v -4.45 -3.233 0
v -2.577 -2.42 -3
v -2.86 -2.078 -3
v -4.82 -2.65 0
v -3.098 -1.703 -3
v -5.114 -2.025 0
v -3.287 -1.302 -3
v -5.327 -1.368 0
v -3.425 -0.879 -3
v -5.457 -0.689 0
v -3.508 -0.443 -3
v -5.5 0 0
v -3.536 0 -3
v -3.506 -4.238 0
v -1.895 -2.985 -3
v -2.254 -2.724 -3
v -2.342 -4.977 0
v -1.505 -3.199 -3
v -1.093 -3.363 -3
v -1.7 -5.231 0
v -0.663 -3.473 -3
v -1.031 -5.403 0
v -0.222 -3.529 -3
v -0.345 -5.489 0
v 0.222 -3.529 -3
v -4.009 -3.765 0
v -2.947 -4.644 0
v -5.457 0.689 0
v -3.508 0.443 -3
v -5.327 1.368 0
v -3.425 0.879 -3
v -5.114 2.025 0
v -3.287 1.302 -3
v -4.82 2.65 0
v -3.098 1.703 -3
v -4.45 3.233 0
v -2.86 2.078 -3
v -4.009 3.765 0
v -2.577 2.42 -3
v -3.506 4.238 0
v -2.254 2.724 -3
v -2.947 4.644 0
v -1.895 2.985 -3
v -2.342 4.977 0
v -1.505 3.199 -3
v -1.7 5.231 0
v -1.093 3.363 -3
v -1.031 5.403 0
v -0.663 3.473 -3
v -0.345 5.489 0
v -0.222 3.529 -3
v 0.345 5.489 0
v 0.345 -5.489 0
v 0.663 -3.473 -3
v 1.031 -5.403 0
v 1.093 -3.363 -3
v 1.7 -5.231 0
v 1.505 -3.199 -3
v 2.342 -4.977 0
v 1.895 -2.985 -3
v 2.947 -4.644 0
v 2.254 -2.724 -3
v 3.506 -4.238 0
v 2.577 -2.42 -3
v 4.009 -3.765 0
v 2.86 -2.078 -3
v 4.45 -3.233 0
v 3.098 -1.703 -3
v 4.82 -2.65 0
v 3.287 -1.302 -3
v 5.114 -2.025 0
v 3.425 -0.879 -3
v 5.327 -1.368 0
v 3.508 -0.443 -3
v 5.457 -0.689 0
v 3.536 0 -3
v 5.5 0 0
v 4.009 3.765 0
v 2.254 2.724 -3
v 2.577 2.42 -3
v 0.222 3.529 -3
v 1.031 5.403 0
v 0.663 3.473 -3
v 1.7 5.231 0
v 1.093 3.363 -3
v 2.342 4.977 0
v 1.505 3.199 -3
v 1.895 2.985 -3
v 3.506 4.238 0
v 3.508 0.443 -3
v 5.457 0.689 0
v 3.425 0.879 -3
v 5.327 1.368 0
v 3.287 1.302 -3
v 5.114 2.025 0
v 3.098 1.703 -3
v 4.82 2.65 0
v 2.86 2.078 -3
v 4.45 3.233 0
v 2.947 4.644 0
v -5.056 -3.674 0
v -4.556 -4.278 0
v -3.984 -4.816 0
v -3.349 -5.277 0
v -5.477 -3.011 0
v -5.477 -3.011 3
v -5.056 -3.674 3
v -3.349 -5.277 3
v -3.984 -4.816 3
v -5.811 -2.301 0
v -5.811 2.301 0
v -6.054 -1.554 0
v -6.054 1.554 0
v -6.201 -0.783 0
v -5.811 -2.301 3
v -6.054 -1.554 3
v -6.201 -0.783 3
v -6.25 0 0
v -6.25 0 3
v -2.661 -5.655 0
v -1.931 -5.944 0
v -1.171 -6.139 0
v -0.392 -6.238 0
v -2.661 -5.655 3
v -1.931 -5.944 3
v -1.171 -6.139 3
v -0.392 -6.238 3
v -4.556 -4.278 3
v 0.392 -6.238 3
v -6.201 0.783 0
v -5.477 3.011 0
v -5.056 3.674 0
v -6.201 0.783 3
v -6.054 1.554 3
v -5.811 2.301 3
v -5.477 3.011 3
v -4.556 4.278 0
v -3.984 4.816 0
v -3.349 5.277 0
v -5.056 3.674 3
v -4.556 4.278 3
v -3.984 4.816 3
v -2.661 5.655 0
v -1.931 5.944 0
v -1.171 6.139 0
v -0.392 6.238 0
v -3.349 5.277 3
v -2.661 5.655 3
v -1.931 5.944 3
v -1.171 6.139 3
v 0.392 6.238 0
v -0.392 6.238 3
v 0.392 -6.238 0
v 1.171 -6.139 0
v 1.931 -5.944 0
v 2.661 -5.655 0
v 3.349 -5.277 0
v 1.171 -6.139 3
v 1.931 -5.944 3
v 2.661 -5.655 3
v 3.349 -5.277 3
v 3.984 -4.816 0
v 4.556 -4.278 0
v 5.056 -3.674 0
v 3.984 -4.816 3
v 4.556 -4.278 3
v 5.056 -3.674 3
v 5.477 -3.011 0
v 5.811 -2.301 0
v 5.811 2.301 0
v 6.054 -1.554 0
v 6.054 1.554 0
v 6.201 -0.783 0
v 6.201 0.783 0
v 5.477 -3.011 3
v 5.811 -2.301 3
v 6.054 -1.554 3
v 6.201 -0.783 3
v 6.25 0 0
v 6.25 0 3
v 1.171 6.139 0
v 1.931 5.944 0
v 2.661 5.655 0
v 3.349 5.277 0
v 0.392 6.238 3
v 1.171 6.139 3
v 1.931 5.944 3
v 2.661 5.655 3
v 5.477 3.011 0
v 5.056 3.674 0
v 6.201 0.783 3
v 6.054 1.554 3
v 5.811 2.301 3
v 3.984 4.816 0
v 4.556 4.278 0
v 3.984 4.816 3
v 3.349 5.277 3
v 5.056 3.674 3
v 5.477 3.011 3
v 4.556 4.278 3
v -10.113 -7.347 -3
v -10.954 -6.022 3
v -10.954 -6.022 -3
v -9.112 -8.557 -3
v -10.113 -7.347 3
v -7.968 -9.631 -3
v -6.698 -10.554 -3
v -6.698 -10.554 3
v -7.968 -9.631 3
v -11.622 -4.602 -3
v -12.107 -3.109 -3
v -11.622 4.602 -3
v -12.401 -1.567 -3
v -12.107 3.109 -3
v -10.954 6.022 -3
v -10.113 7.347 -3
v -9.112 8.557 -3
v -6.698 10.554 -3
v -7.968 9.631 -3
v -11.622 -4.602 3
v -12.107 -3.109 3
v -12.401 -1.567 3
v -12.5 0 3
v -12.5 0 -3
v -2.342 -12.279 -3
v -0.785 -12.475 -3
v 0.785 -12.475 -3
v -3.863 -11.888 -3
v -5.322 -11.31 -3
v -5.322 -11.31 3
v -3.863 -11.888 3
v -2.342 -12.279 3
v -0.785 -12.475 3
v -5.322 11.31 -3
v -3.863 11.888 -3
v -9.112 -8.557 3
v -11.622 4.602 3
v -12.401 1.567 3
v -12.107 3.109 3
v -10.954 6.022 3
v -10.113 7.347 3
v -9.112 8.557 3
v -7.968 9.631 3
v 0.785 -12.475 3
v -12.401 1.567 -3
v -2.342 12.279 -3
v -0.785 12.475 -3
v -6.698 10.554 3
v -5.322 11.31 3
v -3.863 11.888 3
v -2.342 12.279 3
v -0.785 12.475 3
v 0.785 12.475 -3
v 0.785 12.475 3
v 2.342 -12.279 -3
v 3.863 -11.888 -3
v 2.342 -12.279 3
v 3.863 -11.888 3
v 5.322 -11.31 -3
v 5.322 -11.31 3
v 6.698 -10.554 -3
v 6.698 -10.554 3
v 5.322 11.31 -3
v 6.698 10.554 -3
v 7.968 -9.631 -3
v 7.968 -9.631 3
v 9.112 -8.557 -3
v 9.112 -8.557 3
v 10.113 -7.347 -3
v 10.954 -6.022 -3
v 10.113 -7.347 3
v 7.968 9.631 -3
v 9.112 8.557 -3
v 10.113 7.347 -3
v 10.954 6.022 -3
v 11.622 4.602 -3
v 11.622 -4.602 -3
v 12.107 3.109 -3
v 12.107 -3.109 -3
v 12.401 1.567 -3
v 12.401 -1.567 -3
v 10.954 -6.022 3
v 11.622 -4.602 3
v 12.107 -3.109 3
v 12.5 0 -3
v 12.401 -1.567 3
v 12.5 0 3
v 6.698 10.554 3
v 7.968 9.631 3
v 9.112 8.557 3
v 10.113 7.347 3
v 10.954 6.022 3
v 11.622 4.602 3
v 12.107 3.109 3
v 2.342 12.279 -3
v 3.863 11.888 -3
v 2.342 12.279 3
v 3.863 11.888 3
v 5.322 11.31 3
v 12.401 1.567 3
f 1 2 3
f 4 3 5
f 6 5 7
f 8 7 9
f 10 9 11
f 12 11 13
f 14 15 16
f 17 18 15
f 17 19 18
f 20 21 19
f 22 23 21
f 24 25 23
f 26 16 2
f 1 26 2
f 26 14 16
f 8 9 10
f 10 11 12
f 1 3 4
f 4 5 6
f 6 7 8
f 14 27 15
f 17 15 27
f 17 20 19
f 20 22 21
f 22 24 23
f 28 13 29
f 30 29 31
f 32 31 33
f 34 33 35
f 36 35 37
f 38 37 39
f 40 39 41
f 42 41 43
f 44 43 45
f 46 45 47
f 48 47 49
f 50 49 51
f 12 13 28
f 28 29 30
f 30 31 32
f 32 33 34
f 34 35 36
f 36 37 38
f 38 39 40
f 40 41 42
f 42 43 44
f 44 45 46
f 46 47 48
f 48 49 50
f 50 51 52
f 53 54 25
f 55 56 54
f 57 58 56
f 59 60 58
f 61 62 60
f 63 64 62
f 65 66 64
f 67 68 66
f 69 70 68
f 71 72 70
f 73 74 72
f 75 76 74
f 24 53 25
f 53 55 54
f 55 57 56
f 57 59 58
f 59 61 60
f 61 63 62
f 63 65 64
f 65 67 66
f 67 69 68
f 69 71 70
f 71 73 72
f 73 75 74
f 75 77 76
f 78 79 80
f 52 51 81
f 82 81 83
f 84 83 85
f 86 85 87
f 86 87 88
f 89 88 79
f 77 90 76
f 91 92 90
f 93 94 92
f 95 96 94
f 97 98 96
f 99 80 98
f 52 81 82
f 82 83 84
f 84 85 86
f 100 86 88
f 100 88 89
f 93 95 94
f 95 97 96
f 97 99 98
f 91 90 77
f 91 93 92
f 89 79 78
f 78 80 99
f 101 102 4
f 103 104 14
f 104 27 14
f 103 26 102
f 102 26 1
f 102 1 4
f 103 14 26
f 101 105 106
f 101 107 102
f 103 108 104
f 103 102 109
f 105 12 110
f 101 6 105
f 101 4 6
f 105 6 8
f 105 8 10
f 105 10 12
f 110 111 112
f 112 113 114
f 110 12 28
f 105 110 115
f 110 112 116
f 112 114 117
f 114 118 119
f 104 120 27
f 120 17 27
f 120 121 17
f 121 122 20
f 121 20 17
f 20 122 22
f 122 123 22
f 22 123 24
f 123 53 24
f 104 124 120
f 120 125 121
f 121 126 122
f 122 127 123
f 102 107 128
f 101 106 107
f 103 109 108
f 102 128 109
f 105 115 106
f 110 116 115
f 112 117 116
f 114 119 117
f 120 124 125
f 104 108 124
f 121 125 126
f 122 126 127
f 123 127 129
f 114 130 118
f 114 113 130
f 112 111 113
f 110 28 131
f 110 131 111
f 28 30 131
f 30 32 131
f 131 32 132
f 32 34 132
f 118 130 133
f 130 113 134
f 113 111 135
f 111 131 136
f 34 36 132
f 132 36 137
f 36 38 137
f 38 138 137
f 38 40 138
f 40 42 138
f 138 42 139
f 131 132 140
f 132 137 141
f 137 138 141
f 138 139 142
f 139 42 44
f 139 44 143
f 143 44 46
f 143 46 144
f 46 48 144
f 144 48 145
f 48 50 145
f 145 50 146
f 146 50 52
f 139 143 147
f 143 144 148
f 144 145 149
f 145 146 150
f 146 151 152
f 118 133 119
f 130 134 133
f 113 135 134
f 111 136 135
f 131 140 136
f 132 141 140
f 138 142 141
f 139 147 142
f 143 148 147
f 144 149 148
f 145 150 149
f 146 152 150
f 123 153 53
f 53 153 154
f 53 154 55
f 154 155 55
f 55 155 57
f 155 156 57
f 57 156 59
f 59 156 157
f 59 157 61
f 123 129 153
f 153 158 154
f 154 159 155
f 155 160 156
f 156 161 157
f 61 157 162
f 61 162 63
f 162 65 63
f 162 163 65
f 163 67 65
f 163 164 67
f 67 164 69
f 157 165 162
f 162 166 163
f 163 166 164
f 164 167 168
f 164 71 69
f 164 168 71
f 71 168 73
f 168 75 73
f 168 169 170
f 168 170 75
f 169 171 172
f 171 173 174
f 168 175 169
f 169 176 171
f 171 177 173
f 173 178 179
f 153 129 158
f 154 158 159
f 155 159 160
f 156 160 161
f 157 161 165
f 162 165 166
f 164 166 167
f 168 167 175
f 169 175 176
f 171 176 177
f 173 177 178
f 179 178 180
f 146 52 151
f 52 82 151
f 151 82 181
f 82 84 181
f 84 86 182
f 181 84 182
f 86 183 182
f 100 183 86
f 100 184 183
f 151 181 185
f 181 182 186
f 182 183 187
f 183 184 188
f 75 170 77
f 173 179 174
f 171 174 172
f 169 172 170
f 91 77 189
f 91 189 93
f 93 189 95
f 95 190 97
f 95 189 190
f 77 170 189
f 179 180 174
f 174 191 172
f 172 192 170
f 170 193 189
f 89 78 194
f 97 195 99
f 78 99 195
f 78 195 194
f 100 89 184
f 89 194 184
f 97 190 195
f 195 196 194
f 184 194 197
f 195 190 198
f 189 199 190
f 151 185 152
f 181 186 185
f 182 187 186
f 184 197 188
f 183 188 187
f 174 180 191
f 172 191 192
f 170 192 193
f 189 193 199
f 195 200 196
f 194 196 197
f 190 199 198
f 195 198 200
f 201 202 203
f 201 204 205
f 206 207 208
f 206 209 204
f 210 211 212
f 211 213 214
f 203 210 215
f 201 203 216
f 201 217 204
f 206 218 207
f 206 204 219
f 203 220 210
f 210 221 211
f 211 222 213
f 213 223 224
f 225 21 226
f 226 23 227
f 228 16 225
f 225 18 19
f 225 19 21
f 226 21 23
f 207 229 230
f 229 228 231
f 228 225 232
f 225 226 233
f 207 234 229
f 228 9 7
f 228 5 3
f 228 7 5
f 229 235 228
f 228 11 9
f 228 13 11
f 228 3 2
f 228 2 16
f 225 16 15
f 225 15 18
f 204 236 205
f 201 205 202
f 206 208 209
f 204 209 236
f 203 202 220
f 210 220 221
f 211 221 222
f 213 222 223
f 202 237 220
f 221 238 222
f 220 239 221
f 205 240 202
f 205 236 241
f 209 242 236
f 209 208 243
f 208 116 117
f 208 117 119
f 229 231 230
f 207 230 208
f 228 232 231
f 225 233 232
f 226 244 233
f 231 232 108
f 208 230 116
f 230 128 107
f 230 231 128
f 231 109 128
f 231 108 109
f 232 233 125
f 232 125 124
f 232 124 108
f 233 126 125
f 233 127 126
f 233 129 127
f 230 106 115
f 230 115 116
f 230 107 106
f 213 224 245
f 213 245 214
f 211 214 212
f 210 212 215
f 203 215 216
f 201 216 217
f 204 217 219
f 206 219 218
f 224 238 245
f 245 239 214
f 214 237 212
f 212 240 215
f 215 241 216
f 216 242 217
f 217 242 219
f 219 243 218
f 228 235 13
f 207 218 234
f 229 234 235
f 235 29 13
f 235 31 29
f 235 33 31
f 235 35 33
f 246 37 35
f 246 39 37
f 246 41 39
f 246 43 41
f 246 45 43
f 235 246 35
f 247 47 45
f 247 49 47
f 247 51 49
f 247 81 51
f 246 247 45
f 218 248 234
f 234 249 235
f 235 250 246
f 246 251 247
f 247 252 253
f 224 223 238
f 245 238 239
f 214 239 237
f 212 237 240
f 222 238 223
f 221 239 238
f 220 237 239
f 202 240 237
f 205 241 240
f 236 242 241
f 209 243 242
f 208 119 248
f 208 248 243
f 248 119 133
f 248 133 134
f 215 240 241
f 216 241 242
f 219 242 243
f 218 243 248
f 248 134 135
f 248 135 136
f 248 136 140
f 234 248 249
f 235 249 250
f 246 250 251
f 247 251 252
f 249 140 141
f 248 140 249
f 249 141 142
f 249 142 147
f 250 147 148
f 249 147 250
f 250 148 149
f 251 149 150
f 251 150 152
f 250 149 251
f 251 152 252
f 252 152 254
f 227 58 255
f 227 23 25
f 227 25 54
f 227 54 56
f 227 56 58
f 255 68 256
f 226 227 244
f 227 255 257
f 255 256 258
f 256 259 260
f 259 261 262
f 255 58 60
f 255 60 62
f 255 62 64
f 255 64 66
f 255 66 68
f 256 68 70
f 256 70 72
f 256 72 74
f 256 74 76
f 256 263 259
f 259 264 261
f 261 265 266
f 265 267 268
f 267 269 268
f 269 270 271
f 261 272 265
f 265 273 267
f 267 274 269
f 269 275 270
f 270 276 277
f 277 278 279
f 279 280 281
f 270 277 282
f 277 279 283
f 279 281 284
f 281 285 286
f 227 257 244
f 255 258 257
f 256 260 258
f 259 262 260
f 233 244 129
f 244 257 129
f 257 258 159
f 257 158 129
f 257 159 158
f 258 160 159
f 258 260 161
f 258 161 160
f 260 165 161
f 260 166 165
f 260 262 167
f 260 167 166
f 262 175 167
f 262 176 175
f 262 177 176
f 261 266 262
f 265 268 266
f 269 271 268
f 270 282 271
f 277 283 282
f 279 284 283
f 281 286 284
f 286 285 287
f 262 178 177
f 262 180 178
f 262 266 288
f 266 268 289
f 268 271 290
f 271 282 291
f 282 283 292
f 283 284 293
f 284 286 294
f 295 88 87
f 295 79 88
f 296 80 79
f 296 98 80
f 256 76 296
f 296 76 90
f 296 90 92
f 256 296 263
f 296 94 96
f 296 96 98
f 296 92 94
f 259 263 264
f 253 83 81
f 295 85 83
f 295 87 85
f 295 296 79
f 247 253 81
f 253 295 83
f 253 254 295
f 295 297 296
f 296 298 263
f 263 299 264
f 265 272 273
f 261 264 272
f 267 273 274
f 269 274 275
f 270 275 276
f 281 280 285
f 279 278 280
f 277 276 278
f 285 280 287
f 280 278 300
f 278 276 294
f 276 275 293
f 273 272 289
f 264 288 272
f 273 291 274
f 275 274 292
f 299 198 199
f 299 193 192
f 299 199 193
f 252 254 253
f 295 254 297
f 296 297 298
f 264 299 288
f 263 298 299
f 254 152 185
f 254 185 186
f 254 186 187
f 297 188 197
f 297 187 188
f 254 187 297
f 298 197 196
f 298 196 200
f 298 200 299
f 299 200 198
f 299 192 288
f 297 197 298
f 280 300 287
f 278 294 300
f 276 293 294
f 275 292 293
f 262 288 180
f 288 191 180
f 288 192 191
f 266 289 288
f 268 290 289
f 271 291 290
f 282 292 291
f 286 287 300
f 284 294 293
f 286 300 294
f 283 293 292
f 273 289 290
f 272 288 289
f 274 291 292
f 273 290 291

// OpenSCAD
$fn = 50;

difference() {
	union() {
		translate(v = [0, 0, -3.0]) {
			cylinder(h = 6, r = 12.5);
		}
	}
	union() {
		translate(v = [0, 0, 0]) {
			rotate(a = [0, 0, 0]) {
				difference() {
					union() {
						translate(v = [0, 0, -6.0]) {
							cylinder(h = 6, r = 2.25);
						}
						translate(v = [0, 0, -4.2]) {
							cylinder(h = 4.2, r1 = 2.75, r2 = 5.5);
						}
						translate(v = [0, 0, -6.0]) {
							cylinder(h = 6, r = 2.75);
						}
						translate(v = [0, 0, -6.0]) {
							cylinder(h = 6, r = 2.25);
						}
					}
					union();
				}
			}
		}
		#cylinder(h = 3, r = 6.25);
	}
}
